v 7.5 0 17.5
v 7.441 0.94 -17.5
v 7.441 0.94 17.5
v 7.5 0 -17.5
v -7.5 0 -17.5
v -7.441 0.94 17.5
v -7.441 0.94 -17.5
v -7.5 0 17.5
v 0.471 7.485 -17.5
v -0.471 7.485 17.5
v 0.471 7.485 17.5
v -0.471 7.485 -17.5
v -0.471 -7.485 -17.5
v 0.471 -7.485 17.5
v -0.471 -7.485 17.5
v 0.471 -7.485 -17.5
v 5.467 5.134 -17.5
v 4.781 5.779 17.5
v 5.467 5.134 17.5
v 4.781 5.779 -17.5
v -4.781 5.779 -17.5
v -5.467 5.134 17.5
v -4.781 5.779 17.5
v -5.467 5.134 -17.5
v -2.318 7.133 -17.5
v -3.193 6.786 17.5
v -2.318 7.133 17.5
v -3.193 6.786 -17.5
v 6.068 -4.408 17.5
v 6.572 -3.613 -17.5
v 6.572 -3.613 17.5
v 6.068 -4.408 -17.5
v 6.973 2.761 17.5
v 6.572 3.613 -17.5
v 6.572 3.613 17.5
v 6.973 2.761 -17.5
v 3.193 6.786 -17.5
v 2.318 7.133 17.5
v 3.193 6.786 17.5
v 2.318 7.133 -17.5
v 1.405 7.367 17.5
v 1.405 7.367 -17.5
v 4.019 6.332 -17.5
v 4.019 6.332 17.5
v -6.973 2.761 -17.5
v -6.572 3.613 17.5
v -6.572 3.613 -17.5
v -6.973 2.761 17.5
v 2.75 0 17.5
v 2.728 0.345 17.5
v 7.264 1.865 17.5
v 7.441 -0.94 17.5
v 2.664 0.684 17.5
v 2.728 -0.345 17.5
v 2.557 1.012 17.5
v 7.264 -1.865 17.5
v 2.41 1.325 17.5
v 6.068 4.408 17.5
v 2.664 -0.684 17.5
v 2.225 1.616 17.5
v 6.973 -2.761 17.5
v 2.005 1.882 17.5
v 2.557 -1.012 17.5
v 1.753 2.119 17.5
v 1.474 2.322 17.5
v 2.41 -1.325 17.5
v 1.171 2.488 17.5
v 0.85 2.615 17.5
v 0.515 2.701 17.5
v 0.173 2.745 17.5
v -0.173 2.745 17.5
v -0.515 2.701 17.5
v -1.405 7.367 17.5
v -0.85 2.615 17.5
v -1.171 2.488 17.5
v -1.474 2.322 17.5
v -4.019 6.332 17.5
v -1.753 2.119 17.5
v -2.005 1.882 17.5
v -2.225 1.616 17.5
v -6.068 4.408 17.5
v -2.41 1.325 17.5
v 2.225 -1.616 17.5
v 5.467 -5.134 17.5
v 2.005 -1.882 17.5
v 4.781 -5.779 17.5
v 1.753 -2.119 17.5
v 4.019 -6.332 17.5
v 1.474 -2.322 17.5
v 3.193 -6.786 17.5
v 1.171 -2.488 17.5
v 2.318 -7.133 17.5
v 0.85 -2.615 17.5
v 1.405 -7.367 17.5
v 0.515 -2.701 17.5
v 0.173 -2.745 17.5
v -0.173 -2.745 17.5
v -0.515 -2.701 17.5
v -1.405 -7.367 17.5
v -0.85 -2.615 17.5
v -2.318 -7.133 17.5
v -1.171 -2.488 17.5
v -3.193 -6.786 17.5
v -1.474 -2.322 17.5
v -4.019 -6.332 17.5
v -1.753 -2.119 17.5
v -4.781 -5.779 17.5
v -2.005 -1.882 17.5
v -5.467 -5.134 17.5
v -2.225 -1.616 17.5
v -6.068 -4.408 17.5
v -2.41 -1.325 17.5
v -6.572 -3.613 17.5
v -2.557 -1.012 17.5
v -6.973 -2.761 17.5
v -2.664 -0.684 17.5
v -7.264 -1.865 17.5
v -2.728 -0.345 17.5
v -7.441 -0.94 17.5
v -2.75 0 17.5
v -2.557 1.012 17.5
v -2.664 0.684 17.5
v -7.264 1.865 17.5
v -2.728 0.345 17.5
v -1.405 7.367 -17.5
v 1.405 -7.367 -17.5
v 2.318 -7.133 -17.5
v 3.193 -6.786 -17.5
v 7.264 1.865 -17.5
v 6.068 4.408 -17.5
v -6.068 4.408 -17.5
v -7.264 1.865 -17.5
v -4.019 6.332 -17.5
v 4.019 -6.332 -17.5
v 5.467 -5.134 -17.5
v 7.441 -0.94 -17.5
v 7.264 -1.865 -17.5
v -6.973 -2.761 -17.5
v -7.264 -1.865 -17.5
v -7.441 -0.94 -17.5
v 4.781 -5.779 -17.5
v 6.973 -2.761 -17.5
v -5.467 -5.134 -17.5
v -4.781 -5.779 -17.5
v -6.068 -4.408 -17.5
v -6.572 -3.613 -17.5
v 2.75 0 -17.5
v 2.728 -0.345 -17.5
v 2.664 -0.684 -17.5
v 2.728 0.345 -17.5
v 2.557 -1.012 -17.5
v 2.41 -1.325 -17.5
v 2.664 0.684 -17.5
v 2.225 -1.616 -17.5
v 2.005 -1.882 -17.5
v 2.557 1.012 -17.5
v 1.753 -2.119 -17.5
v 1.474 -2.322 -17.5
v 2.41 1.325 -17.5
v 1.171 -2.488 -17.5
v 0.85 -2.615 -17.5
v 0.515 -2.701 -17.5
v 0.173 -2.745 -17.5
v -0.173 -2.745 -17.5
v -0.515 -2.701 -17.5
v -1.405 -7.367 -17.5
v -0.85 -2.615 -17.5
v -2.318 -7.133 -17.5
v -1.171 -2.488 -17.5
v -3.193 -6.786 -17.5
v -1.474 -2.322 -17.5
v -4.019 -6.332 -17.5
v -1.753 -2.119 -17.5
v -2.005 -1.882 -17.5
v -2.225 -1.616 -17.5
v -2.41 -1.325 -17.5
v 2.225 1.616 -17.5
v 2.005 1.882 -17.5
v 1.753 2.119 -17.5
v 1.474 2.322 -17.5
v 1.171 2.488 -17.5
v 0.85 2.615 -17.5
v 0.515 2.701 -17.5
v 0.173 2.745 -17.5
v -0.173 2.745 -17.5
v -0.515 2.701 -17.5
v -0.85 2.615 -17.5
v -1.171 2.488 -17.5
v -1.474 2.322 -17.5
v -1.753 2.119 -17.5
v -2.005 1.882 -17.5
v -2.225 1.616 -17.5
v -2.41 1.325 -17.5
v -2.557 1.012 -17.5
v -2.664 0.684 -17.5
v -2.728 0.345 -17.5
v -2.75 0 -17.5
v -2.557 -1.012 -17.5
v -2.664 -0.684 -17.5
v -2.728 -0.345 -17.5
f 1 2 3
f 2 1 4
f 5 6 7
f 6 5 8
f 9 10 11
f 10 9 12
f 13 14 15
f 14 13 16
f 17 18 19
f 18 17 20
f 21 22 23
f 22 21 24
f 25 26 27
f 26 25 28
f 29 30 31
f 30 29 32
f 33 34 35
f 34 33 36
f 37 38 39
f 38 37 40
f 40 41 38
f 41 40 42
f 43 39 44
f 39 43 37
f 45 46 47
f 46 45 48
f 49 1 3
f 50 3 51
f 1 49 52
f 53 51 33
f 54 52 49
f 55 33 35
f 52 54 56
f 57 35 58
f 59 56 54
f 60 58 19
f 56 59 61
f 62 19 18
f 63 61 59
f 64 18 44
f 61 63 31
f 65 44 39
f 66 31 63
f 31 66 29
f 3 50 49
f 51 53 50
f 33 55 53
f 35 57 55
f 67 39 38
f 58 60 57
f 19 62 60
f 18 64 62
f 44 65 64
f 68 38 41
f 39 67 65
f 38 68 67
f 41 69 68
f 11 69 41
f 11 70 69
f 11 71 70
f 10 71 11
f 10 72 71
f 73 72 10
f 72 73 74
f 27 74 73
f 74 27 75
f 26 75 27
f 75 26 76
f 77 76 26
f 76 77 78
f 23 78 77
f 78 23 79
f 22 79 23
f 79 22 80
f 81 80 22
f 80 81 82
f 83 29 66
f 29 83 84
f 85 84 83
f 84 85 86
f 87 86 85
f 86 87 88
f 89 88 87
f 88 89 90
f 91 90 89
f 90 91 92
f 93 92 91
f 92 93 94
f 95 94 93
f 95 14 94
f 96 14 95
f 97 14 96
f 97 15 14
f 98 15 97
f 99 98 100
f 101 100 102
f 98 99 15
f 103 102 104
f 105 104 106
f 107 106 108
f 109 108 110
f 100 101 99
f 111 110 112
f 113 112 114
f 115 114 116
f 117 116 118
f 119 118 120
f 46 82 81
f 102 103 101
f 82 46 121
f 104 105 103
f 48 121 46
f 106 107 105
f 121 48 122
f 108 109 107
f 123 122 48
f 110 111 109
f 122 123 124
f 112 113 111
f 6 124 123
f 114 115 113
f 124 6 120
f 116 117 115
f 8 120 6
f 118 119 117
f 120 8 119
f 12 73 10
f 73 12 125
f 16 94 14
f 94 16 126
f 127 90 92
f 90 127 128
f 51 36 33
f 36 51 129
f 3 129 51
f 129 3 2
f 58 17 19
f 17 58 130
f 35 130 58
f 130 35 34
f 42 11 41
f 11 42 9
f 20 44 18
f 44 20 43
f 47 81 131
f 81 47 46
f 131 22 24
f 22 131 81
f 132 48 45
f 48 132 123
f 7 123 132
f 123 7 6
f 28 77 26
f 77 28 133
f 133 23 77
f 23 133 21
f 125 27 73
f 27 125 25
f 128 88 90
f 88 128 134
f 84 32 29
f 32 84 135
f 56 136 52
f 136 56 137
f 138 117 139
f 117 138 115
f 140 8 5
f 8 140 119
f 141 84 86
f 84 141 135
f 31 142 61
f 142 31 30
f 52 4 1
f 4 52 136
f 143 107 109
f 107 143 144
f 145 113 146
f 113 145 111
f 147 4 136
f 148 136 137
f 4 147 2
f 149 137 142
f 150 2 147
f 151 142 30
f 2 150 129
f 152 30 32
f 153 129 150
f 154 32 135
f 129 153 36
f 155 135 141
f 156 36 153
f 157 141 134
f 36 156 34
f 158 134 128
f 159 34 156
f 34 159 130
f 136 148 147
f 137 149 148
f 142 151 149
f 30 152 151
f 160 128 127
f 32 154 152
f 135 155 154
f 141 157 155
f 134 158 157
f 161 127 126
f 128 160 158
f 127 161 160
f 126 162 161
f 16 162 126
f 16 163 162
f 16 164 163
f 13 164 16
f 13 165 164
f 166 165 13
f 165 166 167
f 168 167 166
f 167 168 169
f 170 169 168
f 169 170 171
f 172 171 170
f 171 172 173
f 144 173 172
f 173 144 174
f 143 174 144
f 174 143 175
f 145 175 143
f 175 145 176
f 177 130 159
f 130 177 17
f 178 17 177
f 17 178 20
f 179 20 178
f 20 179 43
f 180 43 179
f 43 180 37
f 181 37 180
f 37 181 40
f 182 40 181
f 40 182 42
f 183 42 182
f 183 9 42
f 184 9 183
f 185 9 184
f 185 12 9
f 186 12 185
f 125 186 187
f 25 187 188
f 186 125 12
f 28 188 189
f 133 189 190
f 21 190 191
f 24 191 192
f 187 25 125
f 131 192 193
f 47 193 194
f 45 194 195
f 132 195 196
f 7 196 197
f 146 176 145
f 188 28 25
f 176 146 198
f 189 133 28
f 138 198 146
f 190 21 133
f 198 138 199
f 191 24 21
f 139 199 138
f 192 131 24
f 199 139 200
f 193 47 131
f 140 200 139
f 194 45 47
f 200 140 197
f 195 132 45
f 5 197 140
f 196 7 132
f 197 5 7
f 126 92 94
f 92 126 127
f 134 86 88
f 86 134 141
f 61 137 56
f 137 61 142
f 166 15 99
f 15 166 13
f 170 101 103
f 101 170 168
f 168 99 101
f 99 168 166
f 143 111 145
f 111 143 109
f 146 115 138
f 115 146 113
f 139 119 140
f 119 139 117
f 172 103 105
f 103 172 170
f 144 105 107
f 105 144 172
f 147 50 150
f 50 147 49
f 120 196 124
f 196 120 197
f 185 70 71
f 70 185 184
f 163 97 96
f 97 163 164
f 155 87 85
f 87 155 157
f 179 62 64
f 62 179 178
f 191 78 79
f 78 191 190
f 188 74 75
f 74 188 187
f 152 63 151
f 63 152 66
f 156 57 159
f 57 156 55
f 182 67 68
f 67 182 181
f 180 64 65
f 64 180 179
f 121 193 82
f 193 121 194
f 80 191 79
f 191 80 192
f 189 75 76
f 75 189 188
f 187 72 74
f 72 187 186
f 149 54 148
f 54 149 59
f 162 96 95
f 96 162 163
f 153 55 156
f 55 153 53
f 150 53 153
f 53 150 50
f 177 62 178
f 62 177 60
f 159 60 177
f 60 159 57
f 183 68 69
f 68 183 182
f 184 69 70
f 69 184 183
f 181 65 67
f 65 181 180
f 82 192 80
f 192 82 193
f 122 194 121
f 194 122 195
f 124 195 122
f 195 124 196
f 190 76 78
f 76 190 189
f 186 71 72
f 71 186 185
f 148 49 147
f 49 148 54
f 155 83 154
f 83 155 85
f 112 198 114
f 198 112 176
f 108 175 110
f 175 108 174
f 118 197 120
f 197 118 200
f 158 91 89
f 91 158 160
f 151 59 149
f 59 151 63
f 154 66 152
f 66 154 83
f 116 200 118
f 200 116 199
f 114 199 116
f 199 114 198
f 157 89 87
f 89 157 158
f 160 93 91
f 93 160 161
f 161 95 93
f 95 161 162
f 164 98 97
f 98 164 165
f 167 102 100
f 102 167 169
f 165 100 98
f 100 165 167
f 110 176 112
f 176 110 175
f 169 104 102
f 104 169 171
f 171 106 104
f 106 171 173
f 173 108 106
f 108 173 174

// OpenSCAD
$fn = 50;


difference() {
	union() {
		translate(v = [0, 0, -17.5000000000]) {
			cylinder(h = 35, r = 7.5000000000);
		}
	}
	union() {
		translate(v = [0, 0, -100.0000000000]) {
			cylinder(h = 200, r = 2.7500000000);
		}
	}
}
